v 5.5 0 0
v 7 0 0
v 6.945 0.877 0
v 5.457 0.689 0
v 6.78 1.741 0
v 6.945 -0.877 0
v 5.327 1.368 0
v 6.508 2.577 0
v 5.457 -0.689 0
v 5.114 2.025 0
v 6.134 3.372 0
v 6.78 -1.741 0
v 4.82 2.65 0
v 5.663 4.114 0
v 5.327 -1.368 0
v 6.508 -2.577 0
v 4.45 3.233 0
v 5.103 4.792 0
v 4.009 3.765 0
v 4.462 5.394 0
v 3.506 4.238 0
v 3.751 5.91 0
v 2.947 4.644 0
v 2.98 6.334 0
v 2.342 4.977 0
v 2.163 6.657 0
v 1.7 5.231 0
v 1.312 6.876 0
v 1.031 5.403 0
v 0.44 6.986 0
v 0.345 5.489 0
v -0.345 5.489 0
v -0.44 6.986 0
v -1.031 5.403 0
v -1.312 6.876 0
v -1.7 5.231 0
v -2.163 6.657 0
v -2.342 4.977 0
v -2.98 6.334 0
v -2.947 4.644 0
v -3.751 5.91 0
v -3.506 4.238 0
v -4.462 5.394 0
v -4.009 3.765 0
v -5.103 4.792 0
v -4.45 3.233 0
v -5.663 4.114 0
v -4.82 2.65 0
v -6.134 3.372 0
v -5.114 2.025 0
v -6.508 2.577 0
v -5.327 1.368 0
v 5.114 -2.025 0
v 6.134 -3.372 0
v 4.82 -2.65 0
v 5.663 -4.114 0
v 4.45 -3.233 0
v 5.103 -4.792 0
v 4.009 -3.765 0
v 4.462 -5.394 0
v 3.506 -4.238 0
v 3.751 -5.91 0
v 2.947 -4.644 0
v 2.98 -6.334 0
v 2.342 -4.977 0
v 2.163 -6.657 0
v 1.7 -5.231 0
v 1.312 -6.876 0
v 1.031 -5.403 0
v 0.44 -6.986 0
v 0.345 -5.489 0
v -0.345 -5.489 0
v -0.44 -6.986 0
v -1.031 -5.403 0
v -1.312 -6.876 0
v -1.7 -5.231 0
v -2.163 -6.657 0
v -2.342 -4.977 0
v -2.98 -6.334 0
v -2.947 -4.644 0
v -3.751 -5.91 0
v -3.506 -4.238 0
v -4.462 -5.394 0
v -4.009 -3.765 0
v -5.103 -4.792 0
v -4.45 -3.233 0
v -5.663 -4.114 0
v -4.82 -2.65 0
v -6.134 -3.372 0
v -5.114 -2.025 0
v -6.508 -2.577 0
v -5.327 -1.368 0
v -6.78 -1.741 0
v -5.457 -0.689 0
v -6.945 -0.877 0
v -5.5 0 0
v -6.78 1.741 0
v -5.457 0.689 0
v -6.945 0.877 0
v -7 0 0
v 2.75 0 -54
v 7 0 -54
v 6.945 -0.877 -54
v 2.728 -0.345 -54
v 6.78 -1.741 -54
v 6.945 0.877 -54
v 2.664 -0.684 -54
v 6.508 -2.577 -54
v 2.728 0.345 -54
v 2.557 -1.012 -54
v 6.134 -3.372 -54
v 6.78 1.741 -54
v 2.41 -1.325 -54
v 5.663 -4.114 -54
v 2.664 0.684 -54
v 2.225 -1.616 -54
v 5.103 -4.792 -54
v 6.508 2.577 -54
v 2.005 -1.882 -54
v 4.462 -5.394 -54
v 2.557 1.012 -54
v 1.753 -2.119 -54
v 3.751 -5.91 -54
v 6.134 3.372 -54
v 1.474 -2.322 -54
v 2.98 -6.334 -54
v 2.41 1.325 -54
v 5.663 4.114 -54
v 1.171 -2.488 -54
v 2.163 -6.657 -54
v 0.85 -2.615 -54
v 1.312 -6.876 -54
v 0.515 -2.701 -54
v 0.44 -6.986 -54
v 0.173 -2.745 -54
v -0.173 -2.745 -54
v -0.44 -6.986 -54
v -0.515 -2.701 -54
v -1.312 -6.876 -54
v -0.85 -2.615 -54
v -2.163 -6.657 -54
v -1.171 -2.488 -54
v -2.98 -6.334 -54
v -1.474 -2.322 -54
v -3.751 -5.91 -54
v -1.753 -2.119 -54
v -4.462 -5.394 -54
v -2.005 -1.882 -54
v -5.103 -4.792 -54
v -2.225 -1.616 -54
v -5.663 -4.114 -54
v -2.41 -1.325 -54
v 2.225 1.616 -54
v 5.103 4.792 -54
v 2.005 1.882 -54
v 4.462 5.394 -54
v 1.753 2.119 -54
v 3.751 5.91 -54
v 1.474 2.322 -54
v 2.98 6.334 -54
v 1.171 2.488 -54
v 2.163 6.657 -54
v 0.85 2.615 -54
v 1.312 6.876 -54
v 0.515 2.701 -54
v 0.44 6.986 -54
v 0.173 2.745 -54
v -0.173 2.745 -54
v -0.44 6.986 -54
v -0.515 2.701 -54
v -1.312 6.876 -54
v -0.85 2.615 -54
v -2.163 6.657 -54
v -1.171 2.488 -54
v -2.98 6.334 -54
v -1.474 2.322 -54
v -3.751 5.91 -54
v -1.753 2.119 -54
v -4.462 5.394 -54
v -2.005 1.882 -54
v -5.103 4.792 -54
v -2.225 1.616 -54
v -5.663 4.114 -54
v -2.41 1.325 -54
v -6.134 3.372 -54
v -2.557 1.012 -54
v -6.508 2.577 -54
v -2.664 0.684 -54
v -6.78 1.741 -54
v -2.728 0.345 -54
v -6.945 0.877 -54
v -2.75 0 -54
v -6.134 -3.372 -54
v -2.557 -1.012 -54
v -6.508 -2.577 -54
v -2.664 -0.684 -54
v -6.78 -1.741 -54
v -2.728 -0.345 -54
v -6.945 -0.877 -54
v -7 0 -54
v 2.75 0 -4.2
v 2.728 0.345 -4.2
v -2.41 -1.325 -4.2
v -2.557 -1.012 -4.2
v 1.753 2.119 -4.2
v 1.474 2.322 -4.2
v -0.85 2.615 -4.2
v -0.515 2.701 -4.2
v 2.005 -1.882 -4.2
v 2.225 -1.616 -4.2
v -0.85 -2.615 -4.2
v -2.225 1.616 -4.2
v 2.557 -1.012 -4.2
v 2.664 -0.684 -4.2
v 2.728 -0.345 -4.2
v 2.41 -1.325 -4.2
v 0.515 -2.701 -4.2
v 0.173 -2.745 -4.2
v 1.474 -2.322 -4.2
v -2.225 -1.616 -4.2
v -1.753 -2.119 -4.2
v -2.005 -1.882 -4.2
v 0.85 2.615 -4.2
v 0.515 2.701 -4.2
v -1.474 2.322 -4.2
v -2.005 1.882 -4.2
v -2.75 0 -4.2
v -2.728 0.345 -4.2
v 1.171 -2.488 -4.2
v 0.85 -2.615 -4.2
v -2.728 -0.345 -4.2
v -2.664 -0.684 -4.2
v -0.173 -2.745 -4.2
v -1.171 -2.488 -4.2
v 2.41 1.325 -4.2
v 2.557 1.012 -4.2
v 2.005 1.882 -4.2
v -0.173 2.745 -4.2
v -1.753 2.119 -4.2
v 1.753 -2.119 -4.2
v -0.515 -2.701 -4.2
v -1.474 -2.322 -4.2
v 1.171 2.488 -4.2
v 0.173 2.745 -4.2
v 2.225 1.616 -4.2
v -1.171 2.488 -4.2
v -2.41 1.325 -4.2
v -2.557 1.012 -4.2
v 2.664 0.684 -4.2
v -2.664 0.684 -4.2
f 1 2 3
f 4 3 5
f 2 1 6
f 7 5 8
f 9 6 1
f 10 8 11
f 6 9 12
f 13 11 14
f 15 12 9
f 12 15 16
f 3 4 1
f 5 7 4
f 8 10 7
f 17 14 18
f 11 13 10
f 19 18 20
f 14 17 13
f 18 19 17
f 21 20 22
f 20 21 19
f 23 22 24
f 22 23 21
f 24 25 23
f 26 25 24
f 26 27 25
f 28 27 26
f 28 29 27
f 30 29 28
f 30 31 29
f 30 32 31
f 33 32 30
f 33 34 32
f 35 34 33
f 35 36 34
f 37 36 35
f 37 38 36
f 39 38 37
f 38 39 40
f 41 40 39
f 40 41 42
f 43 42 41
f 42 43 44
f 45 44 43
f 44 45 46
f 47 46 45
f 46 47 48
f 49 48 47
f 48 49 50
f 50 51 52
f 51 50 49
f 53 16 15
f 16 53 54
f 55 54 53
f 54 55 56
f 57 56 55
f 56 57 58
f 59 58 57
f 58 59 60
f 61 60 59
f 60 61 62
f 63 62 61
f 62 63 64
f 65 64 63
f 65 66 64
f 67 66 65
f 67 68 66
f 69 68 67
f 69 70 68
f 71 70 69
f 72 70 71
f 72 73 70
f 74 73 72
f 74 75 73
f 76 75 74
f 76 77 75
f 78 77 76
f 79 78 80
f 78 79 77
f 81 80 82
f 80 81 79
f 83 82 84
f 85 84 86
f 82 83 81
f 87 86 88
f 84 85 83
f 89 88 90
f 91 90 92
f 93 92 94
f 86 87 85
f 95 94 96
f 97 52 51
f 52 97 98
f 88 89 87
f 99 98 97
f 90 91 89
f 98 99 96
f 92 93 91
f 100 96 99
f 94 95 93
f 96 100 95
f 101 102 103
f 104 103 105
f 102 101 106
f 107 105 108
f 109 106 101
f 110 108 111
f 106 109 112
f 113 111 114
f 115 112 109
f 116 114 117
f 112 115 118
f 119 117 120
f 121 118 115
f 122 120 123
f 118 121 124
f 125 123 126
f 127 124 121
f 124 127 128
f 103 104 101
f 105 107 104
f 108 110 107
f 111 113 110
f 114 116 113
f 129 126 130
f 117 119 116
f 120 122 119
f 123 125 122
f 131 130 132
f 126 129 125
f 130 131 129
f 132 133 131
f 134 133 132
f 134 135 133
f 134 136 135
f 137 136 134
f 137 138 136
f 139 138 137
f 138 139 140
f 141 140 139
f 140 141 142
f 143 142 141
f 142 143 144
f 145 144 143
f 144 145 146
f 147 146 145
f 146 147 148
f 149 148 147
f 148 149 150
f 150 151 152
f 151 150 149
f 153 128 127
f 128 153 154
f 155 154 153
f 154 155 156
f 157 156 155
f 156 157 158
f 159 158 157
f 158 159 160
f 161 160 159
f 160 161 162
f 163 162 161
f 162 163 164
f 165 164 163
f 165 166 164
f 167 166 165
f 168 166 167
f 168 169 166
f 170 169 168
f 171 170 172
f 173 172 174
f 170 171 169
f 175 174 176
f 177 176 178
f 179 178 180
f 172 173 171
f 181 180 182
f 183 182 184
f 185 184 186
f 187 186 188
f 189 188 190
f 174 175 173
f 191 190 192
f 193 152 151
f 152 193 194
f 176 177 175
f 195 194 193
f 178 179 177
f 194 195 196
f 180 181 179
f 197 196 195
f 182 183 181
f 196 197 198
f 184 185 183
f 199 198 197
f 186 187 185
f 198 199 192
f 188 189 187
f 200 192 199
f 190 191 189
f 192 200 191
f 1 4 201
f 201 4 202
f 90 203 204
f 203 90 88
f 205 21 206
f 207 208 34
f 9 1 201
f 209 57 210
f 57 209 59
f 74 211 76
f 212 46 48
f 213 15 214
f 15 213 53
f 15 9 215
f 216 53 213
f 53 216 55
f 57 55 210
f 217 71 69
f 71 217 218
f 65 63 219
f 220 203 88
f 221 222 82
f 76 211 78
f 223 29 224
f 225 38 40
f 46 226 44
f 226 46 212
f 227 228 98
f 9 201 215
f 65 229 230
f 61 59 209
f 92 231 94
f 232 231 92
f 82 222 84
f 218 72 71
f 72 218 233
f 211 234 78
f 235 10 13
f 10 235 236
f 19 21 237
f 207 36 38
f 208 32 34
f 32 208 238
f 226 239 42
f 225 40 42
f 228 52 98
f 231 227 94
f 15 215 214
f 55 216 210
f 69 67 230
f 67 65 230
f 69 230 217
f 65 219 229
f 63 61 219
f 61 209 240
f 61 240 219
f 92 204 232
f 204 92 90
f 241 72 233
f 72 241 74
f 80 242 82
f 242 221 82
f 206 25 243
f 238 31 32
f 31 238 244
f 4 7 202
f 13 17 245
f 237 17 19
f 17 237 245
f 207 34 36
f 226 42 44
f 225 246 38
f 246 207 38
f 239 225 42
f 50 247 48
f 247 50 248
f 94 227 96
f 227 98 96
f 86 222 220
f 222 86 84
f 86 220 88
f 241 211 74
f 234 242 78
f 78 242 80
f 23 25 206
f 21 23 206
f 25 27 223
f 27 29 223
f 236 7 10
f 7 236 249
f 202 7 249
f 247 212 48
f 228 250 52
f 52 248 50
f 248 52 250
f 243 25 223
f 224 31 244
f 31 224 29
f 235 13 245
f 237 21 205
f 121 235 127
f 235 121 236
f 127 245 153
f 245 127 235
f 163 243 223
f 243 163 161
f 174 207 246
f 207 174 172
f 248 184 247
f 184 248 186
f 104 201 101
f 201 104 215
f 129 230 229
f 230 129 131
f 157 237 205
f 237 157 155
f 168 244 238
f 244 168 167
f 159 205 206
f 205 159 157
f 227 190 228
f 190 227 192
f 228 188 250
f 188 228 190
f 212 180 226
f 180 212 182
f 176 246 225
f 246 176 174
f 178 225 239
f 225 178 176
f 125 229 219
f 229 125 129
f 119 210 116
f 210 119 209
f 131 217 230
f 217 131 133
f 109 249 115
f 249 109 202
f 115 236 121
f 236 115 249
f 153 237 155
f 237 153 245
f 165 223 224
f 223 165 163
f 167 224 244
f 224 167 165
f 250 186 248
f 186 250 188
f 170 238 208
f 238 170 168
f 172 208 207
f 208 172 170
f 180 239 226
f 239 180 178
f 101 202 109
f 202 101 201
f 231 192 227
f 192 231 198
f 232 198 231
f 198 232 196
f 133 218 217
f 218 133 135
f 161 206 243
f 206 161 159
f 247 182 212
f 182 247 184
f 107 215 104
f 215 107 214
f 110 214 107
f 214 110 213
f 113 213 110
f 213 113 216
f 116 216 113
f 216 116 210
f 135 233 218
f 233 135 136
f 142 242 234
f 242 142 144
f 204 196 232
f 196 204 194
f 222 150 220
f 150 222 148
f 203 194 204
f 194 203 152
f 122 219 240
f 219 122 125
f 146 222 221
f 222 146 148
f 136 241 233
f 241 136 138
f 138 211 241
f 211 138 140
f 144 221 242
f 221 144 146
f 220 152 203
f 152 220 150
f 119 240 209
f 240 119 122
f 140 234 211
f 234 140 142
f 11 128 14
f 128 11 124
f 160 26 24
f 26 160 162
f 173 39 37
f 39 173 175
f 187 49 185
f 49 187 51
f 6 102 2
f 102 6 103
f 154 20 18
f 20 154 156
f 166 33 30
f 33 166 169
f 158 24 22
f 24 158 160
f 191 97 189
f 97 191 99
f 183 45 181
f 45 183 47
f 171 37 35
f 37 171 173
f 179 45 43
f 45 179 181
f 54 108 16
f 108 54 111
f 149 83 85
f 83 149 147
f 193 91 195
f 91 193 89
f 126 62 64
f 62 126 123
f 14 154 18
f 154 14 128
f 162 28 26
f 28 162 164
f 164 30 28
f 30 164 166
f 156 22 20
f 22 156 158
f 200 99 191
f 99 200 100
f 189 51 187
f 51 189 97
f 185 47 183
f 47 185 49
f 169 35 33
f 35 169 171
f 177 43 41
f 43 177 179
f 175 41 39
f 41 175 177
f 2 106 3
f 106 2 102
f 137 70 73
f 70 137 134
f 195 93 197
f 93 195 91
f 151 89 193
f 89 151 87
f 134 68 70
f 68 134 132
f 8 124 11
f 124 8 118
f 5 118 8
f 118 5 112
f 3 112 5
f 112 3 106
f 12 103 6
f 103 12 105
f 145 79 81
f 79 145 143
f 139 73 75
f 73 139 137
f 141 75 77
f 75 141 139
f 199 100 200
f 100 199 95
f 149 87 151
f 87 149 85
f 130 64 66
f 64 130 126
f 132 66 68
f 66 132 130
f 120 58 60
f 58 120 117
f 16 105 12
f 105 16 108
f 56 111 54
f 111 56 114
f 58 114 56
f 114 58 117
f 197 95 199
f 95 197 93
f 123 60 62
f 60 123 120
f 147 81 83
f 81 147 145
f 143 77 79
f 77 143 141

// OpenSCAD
$fn = 50;


difference() {
	union() {
		translate(v = [0, 0, -54.0000000000]) {
			cylinder(h = 54, r = 7.0000000000);
		}
		cylinder(h = 0, r = 16.0000000000);
	}
	union() {
		translate(v = [0, 0, 0]) {
			rotate(a = [0, 0, 0]) {
				difference() {
					union() {
						#translate(v = [0, 0, -54.0000000000]) {
							cylinder(h = 54, r = 2.2500000000);
						}
						#translate(v = [0, 0, -4.2000000000]) {
							cylinder(h = 4.2000000000, r1 = 2.7500000000, r2 = 5.5000000000);
						}
						#translate(v = [0, 0, -54.0000000000]) {
							cylinder(h = 54, r = 2.7500000000);
						}
						#translate(v = [0, 0, -54.0000000000]) {
							cylinder(h = 54, r = 2.2500000000);
						}
					}
					union();
				}
			}
		}
	}
}
